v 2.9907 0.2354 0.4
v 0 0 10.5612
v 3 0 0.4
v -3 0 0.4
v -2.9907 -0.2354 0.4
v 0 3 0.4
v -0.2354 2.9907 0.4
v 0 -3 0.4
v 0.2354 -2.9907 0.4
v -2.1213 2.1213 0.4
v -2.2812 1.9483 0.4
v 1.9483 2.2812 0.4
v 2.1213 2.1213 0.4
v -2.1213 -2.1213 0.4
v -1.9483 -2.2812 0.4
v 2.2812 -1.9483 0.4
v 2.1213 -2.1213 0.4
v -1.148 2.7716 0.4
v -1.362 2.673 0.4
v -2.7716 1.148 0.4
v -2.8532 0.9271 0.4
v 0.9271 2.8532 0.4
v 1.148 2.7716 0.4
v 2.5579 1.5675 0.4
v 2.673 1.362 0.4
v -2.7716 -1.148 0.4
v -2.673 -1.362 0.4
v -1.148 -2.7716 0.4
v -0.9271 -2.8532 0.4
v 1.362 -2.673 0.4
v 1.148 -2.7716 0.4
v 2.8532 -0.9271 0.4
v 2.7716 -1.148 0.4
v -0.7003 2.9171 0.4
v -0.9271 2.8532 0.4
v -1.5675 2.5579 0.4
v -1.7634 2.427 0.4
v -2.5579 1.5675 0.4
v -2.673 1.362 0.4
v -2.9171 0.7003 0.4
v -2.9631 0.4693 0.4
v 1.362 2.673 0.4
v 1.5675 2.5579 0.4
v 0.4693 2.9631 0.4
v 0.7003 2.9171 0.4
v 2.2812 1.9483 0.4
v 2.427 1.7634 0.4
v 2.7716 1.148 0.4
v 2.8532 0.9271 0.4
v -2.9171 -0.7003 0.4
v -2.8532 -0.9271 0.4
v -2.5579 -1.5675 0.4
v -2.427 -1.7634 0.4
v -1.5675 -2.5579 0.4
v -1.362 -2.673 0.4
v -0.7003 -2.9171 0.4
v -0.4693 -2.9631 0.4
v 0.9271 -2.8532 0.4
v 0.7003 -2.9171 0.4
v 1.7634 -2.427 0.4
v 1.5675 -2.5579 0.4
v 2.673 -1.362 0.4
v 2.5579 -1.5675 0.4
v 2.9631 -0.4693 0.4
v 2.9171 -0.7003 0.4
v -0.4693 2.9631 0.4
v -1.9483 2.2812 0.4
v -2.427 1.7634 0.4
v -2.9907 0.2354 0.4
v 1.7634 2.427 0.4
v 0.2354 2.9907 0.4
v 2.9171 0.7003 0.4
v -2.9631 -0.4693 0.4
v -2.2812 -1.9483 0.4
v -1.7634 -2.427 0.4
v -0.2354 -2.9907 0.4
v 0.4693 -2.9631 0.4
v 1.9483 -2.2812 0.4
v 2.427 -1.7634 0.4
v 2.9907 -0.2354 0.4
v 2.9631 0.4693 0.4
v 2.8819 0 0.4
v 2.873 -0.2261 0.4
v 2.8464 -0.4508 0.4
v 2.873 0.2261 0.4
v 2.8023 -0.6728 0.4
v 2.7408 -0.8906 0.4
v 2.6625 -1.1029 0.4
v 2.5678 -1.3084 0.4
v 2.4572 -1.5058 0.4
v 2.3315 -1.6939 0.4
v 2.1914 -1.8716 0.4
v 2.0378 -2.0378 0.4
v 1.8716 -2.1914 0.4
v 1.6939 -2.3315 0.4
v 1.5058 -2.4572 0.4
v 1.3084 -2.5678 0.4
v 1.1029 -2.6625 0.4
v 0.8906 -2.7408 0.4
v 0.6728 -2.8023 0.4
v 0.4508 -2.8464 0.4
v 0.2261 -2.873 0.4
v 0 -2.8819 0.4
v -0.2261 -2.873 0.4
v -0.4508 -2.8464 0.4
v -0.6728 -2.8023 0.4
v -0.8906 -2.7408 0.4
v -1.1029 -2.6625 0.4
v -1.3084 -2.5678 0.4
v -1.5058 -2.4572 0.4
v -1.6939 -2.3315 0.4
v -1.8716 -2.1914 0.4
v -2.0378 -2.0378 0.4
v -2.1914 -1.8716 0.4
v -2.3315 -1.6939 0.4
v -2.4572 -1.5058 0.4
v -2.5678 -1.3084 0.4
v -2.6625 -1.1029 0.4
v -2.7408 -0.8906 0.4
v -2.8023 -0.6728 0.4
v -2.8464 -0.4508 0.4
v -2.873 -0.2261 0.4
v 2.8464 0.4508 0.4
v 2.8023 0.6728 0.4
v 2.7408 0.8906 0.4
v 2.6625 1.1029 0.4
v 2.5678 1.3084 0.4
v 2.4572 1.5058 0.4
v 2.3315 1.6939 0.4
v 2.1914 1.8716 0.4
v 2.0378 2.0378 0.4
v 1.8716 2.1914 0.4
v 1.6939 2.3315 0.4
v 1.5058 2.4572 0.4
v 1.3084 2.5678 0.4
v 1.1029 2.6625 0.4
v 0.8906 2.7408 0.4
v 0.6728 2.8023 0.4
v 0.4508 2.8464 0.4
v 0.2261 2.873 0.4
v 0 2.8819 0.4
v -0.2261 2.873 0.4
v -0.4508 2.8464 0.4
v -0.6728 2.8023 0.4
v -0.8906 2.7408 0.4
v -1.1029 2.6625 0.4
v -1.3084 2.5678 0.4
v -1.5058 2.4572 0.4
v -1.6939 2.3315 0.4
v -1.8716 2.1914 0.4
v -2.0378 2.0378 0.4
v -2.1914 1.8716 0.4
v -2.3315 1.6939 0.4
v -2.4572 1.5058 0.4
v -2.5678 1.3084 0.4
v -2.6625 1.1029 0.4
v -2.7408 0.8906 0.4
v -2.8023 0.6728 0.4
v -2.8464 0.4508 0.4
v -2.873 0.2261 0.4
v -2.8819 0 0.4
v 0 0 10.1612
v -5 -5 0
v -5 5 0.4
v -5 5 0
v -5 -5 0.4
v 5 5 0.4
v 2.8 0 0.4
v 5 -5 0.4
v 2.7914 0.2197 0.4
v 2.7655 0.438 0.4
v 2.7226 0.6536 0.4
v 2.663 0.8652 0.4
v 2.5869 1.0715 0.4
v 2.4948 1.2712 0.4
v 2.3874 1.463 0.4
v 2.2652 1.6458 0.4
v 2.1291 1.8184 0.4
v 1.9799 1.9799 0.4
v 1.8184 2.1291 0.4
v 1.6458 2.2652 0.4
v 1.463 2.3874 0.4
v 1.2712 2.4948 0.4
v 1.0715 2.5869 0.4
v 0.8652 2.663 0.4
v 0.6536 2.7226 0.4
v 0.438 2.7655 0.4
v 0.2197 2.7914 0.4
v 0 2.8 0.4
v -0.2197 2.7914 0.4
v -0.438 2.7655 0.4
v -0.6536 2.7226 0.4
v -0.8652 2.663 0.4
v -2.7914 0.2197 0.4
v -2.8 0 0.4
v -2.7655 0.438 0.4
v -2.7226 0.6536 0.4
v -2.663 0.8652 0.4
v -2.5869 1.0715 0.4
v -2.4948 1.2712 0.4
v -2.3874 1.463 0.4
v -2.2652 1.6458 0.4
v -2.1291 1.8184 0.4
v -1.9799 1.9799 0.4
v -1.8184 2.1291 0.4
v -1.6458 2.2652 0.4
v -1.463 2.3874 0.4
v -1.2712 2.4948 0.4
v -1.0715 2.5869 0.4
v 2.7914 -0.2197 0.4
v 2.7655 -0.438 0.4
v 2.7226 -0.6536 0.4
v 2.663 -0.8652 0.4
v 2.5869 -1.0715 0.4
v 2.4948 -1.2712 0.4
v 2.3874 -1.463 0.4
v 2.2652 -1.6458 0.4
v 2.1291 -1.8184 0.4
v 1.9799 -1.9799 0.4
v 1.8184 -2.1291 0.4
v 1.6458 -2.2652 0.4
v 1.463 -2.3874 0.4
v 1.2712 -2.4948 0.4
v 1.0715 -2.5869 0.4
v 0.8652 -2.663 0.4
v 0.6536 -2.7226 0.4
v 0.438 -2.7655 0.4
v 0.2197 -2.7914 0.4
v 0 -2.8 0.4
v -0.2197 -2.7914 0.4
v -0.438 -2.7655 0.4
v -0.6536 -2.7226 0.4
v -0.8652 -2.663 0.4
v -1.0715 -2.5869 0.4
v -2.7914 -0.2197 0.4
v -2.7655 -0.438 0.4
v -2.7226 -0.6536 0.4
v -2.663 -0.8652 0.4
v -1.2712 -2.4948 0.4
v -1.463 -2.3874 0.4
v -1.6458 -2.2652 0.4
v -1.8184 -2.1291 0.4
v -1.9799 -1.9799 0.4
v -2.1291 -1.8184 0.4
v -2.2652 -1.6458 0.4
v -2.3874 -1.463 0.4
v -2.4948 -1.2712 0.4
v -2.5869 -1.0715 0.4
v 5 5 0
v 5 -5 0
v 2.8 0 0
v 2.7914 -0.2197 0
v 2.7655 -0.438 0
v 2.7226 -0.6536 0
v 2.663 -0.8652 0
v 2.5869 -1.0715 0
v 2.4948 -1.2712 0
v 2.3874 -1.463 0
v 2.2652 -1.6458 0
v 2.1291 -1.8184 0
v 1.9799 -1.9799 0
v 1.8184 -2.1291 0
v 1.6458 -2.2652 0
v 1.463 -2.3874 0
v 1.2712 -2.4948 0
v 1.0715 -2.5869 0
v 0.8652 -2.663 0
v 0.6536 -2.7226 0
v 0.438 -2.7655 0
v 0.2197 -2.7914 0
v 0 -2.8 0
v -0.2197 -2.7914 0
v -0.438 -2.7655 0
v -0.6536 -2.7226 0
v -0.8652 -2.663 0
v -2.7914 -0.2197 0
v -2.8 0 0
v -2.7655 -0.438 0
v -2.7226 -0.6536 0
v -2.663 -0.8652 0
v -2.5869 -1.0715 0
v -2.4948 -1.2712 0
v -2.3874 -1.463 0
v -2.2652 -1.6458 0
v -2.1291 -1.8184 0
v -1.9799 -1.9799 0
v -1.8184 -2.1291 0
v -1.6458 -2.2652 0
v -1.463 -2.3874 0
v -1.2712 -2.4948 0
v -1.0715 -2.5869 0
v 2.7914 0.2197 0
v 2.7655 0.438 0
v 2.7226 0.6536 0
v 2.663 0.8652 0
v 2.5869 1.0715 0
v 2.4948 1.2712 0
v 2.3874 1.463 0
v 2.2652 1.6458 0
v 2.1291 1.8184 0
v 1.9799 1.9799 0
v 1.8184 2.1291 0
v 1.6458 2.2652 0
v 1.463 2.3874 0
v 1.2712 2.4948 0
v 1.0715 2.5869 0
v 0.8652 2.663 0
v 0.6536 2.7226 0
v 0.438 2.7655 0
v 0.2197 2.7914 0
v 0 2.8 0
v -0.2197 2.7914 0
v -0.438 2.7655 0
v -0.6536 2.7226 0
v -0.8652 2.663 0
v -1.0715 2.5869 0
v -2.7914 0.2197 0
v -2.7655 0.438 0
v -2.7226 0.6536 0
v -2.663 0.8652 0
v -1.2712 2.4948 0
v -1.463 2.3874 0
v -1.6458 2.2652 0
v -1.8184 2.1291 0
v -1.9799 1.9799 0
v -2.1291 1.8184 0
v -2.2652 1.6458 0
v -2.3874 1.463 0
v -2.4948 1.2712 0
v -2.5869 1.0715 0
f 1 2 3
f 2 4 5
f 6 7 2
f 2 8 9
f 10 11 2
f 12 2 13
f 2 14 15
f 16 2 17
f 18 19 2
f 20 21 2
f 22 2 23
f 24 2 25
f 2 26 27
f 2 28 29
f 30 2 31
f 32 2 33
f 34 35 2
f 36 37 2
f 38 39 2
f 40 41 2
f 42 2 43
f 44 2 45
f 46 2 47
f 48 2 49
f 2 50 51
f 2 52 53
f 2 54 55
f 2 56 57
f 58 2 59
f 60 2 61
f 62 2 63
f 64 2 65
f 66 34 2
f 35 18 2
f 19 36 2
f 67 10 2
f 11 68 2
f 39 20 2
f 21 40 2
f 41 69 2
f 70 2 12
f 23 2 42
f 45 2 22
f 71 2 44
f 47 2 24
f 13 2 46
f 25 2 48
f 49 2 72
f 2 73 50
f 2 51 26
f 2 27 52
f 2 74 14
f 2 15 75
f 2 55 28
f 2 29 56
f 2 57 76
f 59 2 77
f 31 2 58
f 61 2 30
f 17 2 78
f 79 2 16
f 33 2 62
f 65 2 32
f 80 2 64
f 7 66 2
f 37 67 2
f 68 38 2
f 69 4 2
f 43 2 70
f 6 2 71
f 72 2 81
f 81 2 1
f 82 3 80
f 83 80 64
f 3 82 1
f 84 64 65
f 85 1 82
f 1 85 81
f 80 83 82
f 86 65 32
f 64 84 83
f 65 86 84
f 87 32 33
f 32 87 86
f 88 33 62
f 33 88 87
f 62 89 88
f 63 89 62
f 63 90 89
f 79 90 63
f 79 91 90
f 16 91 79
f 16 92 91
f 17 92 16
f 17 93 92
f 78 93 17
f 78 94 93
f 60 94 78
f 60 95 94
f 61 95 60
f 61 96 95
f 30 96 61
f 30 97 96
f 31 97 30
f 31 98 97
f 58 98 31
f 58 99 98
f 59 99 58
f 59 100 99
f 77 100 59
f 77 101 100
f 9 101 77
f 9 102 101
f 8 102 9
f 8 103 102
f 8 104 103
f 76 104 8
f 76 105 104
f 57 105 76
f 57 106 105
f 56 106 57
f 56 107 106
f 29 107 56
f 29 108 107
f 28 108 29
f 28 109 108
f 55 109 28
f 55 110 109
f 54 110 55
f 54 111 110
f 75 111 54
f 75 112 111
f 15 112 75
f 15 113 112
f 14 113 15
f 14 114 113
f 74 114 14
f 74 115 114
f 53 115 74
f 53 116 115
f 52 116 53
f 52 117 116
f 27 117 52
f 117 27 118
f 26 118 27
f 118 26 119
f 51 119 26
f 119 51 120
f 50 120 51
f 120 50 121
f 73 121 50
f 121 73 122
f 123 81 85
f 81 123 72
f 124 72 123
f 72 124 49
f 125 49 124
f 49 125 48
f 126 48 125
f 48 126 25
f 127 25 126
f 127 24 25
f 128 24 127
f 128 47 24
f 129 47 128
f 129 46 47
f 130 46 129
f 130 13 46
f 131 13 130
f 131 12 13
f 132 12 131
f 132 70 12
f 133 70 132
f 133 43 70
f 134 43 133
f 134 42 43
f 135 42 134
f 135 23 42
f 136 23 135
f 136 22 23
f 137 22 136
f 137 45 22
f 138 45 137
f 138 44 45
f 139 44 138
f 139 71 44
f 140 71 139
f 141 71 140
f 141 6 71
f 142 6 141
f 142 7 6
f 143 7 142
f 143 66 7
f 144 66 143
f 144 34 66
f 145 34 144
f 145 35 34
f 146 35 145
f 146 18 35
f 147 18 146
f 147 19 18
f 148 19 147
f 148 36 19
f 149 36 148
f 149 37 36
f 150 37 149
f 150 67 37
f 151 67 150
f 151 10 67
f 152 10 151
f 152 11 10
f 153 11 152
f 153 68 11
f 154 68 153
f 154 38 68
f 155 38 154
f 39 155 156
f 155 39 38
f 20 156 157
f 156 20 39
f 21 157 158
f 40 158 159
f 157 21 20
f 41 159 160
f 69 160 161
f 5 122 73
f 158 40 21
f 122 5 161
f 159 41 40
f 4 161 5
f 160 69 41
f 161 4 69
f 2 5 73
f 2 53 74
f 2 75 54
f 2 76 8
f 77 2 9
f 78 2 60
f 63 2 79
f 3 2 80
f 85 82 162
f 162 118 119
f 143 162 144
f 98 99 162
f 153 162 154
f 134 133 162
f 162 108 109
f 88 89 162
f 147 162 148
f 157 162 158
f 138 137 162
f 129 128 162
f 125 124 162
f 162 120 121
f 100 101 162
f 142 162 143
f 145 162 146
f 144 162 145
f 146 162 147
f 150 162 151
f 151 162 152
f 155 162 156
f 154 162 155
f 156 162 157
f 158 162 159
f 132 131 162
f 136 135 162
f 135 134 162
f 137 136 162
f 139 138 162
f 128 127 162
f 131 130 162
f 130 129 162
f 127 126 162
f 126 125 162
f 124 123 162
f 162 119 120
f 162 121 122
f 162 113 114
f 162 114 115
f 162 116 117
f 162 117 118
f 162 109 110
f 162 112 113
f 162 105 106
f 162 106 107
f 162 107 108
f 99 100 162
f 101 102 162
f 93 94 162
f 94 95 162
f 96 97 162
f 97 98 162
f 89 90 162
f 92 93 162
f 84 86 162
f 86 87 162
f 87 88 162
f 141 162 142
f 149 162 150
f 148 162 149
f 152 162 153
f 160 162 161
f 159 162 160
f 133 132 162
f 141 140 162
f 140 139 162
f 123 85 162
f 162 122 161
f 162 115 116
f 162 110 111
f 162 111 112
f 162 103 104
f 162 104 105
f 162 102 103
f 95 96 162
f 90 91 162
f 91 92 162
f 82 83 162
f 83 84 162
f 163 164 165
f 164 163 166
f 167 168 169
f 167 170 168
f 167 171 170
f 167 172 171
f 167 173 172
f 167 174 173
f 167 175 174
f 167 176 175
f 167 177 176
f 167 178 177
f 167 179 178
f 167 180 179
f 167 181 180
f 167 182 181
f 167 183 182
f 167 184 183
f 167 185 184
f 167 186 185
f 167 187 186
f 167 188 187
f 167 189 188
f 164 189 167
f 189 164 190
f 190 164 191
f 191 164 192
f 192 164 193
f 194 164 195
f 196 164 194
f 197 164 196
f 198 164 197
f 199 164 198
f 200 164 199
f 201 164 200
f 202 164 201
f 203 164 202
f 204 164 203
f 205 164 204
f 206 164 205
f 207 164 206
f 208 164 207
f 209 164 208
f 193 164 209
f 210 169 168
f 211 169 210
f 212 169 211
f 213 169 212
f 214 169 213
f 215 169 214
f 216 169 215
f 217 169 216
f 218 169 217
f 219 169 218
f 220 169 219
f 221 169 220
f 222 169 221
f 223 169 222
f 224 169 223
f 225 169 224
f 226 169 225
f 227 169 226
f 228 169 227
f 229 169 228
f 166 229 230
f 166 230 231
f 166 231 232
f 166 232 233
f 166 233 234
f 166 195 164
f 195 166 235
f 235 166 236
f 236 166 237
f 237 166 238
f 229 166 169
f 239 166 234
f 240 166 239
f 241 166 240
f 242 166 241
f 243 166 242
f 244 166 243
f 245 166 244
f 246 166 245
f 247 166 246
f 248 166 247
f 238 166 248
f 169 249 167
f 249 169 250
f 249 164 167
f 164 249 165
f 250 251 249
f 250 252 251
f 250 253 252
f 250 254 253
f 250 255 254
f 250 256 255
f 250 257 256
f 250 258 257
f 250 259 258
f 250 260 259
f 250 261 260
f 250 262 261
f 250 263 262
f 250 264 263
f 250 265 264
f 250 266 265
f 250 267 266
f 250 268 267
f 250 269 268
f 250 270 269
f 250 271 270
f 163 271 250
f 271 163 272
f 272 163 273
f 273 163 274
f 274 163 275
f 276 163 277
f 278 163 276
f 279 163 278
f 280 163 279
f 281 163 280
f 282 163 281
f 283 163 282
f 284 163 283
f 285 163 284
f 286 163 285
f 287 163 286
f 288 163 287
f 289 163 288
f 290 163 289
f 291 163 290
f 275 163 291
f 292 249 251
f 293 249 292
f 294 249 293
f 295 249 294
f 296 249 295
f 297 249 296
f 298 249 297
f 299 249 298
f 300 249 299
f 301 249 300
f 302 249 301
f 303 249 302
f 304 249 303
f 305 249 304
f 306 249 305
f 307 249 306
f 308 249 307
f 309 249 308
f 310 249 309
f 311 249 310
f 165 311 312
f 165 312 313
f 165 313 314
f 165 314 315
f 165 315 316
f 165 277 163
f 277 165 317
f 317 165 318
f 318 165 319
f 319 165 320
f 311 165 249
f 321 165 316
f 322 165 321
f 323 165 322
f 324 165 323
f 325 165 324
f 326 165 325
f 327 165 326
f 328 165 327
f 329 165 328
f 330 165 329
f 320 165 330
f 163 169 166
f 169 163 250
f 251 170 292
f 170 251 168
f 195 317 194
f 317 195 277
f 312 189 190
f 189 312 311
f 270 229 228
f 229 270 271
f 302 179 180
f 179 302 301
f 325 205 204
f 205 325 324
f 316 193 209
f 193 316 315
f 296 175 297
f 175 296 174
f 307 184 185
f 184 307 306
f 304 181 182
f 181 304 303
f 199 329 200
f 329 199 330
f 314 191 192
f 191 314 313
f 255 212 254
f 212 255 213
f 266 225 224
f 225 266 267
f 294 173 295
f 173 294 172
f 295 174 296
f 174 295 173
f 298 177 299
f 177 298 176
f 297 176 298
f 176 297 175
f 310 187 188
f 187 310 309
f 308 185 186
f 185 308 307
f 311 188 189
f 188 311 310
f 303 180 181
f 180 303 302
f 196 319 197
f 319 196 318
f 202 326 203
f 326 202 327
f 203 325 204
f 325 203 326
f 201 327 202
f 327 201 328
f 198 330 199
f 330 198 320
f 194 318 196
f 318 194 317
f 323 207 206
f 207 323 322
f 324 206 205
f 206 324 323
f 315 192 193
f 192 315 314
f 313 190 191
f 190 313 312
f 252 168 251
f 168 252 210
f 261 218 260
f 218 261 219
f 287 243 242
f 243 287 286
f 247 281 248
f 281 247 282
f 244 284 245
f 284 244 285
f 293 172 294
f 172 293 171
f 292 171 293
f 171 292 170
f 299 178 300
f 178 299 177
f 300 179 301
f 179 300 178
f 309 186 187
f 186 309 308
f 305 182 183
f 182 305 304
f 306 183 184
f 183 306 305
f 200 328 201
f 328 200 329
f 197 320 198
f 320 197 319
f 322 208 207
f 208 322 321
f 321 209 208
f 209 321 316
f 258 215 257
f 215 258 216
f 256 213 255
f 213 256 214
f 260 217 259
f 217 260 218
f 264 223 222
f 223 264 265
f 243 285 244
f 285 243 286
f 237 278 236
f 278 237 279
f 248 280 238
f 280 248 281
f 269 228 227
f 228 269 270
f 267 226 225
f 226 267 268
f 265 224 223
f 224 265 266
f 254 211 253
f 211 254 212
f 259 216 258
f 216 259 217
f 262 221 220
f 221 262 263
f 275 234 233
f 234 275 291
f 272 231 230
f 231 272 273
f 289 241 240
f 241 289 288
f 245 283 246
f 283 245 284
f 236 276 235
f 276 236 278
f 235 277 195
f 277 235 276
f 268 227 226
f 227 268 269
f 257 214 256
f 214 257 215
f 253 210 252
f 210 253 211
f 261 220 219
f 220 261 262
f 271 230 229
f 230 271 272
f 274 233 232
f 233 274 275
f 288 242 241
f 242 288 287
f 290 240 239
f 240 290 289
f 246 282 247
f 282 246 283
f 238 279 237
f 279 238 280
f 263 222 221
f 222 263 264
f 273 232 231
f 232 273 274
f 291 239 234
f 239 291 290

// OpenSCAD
// file: common/common_functions.scad
// common_functions.scad

function get_visual_overrun() = 0.1;

function ft_to_cm(ft) = ft * 30.48;

function cm_to_ft(cm) = cm / 30.48;

function in_to_cm(in) = in * 2.54;

function cm_to_in(cm) = cm / 2.54;
// main file
/**
 * @file cone-1.scad
 * @brief TODO.
 *
 * units: centimeter
 *
 * (a / b) = gr = (1 + sqrt(5)) / 2
 *
 * b = base_diameter = (2 * radius)
 *
 */

// modules
use <common/common_functions.scad>

// constants
VISUAL_OVERRUN = get_visual_overrun();
BASE_SIZE = 10.0;
BASE_THICKNESS = 0.4;
WALL_THICKNESS = 0.4;
RATIO = (1 + sqrt(5)) / 2;

R = 3.0;
B = (2 * R);
A = (B * RATIO);
H = sqrt(pow(A, 2) + pow(R, 2));

BASE_CUTOUT_R = R - 0.2;

module cone()
{
    cylinder(
            h = H,
            r1 = R,
            r2 = 0,
            center = false,
            $fn = 80);
}

module base()
{
    base_size = [
            BASE_SIZE,
            BASE_SIZE,
            BASE_THICKNESS];

    base_offset = [
            0,
            0,
            BASE_THICKNESS / 2];

    difference()
    {
        translate(base_offset)
            cube(size = base_size, center = true);

        translate([0, 0, -VISUAL_OVERRUN])
            cylinder(
                    h = BASE_THICKNESS + (2 * VISUAL_OVERRUN),
                    r1 = BASE_CUTOUT_R,
                    r2 = BASE_CUTOUT_R,
                    center = false,
                    $fn = 80);
    }
}

module assembly()
{
    union()
    {
        translate([0, 0, BASE_THICKNESS])
            difference()
            {
                cone();

                translate([0, 0, -WALL_THICKNESS])
                    cone();
            }

        base();
    }
}

assembly();

echo(RATIO = RATIO);
echo(R = R);
echo(H = H);
echo(B = B);
echo(A = A);
echo(str("A / B = ", A / B));
echo(BASE_CUTOUT_R = BASE_CUTOUT_R);
echo(BASE_SIZE = BASE_SIZE);
echo(BASE_THICKNESS = BASE_THICKNESS);
echo(WALL_THICKNESS = WALL_THICKNESS);
